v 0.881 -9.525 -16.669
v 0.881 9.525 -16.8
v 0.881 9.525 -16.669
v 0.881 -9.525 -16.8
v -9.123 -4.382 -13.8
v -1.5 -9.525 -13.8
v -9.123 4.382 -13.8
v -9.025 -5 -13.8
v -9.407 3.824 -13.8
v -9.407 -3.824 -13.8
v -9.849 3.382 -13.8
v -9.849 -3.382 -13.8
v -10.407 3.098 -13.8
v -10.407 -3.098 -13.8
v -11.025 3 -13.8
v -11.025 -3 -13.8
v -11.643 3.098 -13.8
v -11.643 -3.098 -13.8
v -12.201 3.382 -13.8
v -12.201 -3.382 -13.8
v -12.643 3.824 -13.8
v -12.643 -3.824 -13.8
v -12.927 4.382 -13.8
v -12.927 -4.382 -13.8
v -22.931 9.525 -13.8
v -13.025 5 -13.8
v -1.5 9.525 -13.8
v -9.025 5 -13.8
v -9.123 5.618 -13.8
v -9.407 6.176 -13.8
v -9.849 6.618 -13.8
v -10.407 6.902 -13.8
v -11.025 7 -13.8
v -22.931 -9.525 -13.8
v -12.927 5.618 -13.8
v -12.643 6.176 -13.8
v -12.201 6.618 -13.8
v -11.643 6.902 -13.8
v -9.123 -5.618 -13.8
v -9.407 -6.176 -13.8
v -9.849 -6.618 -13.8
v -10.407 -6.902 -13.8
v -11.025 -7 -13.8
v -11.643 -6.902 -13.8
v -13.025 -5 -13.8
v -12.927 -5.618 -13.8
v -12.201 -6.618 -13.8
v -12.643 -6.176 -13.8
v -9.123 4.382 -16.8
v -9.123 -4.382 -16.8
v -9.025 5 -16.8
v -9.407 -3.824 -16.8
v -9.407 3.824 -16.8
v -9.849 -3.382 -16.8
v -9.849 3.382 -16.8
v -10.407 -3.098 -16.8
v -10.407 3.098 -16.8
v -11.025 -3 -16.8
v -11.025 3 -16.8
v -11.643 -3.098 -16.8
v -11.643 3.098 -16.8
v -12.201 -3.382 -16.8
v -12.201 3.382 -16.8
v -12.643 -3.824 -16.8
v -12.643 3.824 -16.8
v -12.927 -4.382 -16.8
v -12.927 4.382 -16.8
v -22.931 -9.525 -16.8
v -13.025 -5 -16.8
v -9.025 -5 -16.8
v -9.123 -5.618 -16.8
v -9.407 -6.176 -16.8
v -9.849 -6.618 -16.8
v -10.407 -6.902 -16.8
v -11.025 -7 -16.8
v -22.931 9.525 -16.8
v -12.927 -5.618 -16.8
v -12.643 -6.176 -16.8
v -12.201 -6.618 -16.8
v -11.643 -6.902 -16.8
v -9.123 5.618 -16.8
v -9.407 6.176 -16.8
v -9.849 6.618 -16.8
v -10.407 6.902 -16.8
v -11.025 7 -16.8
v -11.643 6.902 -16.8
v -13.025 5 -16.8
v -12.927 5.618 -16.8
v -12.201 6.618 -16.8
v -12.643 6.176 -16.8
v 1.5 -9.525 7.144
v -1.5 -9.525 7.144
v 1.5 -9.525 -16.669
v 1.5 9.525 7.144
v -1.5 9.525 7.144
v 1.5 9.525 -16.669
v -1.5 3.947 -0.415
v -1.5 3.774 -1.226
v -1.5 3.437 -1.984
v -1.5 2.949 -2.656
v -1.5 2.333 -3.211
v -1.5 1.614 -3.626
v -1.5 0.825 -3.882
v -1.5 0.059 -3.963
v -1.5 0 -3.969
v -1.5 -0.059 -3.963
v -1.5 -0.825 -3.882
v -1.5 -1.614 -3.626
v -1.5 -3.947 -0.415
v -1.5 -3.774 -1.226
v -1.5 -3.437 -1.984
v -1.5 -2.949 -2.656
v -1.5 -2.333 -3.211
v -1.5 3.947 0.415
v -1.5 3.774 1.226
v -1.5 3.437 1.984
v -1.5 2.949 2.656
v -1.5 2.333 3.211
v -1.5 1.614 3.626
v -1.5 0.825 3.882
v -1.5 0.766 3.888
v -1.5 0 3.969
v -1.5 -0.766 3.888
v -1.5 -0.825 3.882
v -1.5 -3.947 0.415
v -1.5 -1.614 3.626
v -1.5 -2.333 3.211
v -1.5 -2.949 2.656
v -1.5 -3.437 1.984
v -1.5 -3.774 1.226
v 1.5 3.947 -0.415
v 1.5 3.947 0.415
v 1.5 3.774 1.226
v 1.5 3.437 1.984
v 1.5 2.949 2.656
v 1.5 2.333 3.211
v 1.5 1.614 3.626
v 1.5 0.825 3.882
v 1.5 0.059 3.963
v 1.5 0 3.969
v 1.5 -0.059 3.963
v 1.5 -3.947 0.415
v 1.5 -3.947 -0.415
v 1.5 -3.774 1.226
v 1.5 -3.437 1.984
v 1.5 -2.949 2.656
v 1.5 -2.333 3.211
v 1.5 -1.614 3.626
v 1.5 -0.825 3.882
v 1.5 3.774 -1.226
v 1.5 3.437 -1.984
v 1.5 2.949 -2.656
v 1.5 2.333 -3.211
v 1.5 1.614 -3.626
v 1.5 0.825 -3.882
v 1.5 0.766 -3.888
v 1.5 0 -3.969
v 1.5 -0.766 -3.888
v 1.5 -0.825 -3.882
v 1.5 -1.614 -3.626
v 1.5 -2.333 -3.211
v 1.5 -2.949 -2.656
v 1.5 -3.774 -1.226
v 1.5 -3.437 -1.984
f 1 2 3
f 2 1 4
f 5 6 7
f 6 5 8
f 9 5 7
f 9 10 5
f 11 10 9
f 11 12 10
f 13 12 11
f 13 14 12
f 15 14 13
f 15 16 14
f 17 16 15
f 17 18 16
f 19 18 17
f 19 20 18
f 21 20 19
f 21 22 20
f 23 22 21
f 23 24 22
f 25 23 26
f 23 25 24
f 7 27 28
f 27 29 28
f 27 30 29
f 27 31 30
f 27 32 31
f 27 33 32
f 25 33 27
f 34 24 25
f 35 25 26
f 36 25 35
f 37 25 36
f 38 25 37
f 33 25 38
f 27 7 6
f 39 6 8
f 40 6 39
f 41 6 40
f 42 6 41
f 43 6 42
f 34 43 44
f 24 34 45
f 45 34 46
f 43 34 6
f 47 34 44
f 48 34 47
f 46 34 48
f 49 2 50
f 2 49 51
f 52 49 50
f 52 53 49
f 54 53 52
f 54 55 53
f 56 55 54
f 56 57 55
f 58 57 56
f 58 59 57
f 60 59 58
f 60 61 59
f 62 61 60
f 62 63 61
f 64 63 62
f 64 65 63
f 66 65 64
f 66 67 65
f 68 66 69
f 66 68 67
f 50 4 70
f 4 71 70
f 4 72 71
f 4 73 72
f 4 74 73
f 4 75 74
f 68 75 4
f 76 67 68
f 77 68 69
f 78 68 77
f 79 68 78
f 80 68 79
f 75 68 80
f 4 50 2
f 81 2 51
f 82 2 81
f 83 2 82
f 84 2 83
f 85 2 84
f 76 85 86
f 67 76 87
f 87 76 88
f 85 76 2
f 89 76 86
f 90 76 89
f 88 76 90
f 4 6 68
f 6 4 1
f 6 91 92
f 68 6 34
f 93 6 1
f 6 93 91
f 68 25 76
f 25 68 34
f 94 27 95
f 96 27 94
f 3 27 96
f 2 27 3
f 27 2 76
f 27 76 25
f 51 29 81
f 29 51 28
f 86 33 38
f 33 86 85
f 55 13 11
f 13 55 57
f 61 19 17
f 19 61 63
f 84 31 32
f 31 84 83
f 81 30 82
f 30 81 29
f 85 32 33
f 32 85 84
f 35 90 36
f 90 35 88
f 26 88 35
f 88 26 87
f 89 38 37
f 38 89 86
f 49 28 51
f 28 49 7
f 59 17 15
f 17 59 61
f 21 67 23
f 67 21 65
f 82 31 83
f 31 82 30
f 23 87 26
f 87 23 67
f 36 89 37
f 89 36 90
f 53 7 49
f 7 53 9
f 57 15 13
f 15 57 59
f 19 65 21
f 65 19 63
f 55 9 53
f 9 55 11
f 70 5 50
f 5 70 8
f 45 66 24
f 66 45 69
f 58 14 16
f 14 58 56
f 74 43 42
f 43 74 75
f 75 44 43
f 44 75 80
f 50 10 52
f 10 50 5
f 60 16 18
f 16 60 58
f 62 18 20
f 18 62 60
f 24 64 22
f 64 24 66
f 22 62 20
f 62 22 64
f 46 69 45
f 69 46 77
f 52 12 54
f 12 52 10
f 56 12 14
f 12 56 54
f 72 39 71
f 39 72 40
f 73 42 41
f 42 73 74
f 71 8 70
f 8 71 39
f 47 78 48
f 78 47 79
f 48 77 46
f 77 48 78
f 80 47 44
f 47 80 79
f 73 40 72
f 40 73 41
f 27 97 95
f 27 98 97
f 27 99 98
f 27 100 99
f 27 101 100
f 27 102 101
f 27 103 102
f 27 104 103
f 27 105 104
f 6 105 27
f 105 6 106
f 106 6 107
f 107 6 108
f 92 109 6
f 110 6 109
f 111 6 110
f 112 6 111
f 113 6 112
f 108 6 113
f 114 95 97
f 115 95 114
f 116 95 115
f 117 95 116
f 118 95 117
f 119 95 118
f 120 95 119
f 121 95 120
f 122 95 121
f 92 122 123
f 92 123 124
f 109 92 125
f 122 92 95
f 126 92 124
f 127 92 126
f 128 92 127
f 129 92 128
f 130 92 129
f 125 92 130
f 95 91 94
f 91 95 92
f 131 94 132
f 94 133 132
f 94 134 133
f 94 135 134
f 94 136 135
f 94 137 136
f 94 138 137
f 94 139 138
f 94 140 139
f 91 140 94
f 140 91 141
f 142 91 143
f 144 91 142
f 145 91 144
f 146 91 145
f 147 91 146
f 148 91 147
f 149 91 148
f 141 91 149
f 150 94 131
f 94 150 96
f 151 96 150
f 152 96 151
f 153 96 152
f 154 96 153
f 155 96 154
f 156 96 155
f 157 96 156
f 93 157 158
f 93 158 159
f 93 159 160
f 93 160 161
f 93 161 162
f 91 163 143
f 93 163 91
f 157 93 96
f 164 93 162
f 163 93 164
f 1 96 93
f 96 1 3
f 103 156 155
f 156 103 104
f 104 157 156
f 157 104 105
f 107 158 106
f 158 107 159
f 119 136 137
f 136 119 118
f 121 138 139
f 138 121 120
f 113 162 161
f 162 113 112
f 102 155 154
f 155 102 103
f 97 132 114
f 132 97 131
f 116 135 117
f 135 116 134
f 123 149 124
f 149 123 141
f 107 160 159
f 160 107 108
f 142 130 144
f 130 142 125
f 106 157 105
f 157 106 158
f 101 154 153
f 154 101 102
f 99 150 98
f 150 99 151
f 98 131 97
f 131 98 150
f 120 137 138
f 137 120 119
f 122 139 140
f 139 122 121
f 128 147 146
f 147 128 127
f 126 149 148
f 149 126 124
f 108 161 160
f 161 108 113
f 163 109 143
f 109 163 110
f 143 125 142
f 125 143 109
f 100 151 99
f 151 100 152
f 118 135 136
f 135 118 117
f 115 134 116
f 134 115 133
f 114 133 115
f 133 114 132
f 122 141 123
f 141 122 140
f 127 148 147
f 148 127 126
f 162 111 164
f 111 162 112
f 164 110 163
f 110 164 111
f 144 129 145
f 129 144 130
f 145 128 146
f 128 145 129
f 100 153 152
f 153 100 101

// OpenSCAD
PotD=25.4*5/16;
PotOffset=25.4*3/4;
PotFoot=PotOffset;
Wall=3;


difference() {
translate([0,0,-PotOffset*.25])
  cube([Wall,PotOffset,PotOffset*1.25],center=true);
  rotate([0,90,0])
    cylinder(d=PotD,h=Wall+.5,center=true,$fn=30);
}

translate([-PotOffset/2-Wall/2,0,-PotOffset+Wall*1.25])
difference() {
  rotate([0,90,0])
    cube([Wall,PotOffset,PotOffset*1.25],center=true);
  translate([0,5,0])  
    cylinder(d=4,h=Wall+.5,center=true,$fn=20);  
  translate([0,-5,0])  
    cylinder(d=4,h=Wall+.5,center=true,$fn=20);  
}
